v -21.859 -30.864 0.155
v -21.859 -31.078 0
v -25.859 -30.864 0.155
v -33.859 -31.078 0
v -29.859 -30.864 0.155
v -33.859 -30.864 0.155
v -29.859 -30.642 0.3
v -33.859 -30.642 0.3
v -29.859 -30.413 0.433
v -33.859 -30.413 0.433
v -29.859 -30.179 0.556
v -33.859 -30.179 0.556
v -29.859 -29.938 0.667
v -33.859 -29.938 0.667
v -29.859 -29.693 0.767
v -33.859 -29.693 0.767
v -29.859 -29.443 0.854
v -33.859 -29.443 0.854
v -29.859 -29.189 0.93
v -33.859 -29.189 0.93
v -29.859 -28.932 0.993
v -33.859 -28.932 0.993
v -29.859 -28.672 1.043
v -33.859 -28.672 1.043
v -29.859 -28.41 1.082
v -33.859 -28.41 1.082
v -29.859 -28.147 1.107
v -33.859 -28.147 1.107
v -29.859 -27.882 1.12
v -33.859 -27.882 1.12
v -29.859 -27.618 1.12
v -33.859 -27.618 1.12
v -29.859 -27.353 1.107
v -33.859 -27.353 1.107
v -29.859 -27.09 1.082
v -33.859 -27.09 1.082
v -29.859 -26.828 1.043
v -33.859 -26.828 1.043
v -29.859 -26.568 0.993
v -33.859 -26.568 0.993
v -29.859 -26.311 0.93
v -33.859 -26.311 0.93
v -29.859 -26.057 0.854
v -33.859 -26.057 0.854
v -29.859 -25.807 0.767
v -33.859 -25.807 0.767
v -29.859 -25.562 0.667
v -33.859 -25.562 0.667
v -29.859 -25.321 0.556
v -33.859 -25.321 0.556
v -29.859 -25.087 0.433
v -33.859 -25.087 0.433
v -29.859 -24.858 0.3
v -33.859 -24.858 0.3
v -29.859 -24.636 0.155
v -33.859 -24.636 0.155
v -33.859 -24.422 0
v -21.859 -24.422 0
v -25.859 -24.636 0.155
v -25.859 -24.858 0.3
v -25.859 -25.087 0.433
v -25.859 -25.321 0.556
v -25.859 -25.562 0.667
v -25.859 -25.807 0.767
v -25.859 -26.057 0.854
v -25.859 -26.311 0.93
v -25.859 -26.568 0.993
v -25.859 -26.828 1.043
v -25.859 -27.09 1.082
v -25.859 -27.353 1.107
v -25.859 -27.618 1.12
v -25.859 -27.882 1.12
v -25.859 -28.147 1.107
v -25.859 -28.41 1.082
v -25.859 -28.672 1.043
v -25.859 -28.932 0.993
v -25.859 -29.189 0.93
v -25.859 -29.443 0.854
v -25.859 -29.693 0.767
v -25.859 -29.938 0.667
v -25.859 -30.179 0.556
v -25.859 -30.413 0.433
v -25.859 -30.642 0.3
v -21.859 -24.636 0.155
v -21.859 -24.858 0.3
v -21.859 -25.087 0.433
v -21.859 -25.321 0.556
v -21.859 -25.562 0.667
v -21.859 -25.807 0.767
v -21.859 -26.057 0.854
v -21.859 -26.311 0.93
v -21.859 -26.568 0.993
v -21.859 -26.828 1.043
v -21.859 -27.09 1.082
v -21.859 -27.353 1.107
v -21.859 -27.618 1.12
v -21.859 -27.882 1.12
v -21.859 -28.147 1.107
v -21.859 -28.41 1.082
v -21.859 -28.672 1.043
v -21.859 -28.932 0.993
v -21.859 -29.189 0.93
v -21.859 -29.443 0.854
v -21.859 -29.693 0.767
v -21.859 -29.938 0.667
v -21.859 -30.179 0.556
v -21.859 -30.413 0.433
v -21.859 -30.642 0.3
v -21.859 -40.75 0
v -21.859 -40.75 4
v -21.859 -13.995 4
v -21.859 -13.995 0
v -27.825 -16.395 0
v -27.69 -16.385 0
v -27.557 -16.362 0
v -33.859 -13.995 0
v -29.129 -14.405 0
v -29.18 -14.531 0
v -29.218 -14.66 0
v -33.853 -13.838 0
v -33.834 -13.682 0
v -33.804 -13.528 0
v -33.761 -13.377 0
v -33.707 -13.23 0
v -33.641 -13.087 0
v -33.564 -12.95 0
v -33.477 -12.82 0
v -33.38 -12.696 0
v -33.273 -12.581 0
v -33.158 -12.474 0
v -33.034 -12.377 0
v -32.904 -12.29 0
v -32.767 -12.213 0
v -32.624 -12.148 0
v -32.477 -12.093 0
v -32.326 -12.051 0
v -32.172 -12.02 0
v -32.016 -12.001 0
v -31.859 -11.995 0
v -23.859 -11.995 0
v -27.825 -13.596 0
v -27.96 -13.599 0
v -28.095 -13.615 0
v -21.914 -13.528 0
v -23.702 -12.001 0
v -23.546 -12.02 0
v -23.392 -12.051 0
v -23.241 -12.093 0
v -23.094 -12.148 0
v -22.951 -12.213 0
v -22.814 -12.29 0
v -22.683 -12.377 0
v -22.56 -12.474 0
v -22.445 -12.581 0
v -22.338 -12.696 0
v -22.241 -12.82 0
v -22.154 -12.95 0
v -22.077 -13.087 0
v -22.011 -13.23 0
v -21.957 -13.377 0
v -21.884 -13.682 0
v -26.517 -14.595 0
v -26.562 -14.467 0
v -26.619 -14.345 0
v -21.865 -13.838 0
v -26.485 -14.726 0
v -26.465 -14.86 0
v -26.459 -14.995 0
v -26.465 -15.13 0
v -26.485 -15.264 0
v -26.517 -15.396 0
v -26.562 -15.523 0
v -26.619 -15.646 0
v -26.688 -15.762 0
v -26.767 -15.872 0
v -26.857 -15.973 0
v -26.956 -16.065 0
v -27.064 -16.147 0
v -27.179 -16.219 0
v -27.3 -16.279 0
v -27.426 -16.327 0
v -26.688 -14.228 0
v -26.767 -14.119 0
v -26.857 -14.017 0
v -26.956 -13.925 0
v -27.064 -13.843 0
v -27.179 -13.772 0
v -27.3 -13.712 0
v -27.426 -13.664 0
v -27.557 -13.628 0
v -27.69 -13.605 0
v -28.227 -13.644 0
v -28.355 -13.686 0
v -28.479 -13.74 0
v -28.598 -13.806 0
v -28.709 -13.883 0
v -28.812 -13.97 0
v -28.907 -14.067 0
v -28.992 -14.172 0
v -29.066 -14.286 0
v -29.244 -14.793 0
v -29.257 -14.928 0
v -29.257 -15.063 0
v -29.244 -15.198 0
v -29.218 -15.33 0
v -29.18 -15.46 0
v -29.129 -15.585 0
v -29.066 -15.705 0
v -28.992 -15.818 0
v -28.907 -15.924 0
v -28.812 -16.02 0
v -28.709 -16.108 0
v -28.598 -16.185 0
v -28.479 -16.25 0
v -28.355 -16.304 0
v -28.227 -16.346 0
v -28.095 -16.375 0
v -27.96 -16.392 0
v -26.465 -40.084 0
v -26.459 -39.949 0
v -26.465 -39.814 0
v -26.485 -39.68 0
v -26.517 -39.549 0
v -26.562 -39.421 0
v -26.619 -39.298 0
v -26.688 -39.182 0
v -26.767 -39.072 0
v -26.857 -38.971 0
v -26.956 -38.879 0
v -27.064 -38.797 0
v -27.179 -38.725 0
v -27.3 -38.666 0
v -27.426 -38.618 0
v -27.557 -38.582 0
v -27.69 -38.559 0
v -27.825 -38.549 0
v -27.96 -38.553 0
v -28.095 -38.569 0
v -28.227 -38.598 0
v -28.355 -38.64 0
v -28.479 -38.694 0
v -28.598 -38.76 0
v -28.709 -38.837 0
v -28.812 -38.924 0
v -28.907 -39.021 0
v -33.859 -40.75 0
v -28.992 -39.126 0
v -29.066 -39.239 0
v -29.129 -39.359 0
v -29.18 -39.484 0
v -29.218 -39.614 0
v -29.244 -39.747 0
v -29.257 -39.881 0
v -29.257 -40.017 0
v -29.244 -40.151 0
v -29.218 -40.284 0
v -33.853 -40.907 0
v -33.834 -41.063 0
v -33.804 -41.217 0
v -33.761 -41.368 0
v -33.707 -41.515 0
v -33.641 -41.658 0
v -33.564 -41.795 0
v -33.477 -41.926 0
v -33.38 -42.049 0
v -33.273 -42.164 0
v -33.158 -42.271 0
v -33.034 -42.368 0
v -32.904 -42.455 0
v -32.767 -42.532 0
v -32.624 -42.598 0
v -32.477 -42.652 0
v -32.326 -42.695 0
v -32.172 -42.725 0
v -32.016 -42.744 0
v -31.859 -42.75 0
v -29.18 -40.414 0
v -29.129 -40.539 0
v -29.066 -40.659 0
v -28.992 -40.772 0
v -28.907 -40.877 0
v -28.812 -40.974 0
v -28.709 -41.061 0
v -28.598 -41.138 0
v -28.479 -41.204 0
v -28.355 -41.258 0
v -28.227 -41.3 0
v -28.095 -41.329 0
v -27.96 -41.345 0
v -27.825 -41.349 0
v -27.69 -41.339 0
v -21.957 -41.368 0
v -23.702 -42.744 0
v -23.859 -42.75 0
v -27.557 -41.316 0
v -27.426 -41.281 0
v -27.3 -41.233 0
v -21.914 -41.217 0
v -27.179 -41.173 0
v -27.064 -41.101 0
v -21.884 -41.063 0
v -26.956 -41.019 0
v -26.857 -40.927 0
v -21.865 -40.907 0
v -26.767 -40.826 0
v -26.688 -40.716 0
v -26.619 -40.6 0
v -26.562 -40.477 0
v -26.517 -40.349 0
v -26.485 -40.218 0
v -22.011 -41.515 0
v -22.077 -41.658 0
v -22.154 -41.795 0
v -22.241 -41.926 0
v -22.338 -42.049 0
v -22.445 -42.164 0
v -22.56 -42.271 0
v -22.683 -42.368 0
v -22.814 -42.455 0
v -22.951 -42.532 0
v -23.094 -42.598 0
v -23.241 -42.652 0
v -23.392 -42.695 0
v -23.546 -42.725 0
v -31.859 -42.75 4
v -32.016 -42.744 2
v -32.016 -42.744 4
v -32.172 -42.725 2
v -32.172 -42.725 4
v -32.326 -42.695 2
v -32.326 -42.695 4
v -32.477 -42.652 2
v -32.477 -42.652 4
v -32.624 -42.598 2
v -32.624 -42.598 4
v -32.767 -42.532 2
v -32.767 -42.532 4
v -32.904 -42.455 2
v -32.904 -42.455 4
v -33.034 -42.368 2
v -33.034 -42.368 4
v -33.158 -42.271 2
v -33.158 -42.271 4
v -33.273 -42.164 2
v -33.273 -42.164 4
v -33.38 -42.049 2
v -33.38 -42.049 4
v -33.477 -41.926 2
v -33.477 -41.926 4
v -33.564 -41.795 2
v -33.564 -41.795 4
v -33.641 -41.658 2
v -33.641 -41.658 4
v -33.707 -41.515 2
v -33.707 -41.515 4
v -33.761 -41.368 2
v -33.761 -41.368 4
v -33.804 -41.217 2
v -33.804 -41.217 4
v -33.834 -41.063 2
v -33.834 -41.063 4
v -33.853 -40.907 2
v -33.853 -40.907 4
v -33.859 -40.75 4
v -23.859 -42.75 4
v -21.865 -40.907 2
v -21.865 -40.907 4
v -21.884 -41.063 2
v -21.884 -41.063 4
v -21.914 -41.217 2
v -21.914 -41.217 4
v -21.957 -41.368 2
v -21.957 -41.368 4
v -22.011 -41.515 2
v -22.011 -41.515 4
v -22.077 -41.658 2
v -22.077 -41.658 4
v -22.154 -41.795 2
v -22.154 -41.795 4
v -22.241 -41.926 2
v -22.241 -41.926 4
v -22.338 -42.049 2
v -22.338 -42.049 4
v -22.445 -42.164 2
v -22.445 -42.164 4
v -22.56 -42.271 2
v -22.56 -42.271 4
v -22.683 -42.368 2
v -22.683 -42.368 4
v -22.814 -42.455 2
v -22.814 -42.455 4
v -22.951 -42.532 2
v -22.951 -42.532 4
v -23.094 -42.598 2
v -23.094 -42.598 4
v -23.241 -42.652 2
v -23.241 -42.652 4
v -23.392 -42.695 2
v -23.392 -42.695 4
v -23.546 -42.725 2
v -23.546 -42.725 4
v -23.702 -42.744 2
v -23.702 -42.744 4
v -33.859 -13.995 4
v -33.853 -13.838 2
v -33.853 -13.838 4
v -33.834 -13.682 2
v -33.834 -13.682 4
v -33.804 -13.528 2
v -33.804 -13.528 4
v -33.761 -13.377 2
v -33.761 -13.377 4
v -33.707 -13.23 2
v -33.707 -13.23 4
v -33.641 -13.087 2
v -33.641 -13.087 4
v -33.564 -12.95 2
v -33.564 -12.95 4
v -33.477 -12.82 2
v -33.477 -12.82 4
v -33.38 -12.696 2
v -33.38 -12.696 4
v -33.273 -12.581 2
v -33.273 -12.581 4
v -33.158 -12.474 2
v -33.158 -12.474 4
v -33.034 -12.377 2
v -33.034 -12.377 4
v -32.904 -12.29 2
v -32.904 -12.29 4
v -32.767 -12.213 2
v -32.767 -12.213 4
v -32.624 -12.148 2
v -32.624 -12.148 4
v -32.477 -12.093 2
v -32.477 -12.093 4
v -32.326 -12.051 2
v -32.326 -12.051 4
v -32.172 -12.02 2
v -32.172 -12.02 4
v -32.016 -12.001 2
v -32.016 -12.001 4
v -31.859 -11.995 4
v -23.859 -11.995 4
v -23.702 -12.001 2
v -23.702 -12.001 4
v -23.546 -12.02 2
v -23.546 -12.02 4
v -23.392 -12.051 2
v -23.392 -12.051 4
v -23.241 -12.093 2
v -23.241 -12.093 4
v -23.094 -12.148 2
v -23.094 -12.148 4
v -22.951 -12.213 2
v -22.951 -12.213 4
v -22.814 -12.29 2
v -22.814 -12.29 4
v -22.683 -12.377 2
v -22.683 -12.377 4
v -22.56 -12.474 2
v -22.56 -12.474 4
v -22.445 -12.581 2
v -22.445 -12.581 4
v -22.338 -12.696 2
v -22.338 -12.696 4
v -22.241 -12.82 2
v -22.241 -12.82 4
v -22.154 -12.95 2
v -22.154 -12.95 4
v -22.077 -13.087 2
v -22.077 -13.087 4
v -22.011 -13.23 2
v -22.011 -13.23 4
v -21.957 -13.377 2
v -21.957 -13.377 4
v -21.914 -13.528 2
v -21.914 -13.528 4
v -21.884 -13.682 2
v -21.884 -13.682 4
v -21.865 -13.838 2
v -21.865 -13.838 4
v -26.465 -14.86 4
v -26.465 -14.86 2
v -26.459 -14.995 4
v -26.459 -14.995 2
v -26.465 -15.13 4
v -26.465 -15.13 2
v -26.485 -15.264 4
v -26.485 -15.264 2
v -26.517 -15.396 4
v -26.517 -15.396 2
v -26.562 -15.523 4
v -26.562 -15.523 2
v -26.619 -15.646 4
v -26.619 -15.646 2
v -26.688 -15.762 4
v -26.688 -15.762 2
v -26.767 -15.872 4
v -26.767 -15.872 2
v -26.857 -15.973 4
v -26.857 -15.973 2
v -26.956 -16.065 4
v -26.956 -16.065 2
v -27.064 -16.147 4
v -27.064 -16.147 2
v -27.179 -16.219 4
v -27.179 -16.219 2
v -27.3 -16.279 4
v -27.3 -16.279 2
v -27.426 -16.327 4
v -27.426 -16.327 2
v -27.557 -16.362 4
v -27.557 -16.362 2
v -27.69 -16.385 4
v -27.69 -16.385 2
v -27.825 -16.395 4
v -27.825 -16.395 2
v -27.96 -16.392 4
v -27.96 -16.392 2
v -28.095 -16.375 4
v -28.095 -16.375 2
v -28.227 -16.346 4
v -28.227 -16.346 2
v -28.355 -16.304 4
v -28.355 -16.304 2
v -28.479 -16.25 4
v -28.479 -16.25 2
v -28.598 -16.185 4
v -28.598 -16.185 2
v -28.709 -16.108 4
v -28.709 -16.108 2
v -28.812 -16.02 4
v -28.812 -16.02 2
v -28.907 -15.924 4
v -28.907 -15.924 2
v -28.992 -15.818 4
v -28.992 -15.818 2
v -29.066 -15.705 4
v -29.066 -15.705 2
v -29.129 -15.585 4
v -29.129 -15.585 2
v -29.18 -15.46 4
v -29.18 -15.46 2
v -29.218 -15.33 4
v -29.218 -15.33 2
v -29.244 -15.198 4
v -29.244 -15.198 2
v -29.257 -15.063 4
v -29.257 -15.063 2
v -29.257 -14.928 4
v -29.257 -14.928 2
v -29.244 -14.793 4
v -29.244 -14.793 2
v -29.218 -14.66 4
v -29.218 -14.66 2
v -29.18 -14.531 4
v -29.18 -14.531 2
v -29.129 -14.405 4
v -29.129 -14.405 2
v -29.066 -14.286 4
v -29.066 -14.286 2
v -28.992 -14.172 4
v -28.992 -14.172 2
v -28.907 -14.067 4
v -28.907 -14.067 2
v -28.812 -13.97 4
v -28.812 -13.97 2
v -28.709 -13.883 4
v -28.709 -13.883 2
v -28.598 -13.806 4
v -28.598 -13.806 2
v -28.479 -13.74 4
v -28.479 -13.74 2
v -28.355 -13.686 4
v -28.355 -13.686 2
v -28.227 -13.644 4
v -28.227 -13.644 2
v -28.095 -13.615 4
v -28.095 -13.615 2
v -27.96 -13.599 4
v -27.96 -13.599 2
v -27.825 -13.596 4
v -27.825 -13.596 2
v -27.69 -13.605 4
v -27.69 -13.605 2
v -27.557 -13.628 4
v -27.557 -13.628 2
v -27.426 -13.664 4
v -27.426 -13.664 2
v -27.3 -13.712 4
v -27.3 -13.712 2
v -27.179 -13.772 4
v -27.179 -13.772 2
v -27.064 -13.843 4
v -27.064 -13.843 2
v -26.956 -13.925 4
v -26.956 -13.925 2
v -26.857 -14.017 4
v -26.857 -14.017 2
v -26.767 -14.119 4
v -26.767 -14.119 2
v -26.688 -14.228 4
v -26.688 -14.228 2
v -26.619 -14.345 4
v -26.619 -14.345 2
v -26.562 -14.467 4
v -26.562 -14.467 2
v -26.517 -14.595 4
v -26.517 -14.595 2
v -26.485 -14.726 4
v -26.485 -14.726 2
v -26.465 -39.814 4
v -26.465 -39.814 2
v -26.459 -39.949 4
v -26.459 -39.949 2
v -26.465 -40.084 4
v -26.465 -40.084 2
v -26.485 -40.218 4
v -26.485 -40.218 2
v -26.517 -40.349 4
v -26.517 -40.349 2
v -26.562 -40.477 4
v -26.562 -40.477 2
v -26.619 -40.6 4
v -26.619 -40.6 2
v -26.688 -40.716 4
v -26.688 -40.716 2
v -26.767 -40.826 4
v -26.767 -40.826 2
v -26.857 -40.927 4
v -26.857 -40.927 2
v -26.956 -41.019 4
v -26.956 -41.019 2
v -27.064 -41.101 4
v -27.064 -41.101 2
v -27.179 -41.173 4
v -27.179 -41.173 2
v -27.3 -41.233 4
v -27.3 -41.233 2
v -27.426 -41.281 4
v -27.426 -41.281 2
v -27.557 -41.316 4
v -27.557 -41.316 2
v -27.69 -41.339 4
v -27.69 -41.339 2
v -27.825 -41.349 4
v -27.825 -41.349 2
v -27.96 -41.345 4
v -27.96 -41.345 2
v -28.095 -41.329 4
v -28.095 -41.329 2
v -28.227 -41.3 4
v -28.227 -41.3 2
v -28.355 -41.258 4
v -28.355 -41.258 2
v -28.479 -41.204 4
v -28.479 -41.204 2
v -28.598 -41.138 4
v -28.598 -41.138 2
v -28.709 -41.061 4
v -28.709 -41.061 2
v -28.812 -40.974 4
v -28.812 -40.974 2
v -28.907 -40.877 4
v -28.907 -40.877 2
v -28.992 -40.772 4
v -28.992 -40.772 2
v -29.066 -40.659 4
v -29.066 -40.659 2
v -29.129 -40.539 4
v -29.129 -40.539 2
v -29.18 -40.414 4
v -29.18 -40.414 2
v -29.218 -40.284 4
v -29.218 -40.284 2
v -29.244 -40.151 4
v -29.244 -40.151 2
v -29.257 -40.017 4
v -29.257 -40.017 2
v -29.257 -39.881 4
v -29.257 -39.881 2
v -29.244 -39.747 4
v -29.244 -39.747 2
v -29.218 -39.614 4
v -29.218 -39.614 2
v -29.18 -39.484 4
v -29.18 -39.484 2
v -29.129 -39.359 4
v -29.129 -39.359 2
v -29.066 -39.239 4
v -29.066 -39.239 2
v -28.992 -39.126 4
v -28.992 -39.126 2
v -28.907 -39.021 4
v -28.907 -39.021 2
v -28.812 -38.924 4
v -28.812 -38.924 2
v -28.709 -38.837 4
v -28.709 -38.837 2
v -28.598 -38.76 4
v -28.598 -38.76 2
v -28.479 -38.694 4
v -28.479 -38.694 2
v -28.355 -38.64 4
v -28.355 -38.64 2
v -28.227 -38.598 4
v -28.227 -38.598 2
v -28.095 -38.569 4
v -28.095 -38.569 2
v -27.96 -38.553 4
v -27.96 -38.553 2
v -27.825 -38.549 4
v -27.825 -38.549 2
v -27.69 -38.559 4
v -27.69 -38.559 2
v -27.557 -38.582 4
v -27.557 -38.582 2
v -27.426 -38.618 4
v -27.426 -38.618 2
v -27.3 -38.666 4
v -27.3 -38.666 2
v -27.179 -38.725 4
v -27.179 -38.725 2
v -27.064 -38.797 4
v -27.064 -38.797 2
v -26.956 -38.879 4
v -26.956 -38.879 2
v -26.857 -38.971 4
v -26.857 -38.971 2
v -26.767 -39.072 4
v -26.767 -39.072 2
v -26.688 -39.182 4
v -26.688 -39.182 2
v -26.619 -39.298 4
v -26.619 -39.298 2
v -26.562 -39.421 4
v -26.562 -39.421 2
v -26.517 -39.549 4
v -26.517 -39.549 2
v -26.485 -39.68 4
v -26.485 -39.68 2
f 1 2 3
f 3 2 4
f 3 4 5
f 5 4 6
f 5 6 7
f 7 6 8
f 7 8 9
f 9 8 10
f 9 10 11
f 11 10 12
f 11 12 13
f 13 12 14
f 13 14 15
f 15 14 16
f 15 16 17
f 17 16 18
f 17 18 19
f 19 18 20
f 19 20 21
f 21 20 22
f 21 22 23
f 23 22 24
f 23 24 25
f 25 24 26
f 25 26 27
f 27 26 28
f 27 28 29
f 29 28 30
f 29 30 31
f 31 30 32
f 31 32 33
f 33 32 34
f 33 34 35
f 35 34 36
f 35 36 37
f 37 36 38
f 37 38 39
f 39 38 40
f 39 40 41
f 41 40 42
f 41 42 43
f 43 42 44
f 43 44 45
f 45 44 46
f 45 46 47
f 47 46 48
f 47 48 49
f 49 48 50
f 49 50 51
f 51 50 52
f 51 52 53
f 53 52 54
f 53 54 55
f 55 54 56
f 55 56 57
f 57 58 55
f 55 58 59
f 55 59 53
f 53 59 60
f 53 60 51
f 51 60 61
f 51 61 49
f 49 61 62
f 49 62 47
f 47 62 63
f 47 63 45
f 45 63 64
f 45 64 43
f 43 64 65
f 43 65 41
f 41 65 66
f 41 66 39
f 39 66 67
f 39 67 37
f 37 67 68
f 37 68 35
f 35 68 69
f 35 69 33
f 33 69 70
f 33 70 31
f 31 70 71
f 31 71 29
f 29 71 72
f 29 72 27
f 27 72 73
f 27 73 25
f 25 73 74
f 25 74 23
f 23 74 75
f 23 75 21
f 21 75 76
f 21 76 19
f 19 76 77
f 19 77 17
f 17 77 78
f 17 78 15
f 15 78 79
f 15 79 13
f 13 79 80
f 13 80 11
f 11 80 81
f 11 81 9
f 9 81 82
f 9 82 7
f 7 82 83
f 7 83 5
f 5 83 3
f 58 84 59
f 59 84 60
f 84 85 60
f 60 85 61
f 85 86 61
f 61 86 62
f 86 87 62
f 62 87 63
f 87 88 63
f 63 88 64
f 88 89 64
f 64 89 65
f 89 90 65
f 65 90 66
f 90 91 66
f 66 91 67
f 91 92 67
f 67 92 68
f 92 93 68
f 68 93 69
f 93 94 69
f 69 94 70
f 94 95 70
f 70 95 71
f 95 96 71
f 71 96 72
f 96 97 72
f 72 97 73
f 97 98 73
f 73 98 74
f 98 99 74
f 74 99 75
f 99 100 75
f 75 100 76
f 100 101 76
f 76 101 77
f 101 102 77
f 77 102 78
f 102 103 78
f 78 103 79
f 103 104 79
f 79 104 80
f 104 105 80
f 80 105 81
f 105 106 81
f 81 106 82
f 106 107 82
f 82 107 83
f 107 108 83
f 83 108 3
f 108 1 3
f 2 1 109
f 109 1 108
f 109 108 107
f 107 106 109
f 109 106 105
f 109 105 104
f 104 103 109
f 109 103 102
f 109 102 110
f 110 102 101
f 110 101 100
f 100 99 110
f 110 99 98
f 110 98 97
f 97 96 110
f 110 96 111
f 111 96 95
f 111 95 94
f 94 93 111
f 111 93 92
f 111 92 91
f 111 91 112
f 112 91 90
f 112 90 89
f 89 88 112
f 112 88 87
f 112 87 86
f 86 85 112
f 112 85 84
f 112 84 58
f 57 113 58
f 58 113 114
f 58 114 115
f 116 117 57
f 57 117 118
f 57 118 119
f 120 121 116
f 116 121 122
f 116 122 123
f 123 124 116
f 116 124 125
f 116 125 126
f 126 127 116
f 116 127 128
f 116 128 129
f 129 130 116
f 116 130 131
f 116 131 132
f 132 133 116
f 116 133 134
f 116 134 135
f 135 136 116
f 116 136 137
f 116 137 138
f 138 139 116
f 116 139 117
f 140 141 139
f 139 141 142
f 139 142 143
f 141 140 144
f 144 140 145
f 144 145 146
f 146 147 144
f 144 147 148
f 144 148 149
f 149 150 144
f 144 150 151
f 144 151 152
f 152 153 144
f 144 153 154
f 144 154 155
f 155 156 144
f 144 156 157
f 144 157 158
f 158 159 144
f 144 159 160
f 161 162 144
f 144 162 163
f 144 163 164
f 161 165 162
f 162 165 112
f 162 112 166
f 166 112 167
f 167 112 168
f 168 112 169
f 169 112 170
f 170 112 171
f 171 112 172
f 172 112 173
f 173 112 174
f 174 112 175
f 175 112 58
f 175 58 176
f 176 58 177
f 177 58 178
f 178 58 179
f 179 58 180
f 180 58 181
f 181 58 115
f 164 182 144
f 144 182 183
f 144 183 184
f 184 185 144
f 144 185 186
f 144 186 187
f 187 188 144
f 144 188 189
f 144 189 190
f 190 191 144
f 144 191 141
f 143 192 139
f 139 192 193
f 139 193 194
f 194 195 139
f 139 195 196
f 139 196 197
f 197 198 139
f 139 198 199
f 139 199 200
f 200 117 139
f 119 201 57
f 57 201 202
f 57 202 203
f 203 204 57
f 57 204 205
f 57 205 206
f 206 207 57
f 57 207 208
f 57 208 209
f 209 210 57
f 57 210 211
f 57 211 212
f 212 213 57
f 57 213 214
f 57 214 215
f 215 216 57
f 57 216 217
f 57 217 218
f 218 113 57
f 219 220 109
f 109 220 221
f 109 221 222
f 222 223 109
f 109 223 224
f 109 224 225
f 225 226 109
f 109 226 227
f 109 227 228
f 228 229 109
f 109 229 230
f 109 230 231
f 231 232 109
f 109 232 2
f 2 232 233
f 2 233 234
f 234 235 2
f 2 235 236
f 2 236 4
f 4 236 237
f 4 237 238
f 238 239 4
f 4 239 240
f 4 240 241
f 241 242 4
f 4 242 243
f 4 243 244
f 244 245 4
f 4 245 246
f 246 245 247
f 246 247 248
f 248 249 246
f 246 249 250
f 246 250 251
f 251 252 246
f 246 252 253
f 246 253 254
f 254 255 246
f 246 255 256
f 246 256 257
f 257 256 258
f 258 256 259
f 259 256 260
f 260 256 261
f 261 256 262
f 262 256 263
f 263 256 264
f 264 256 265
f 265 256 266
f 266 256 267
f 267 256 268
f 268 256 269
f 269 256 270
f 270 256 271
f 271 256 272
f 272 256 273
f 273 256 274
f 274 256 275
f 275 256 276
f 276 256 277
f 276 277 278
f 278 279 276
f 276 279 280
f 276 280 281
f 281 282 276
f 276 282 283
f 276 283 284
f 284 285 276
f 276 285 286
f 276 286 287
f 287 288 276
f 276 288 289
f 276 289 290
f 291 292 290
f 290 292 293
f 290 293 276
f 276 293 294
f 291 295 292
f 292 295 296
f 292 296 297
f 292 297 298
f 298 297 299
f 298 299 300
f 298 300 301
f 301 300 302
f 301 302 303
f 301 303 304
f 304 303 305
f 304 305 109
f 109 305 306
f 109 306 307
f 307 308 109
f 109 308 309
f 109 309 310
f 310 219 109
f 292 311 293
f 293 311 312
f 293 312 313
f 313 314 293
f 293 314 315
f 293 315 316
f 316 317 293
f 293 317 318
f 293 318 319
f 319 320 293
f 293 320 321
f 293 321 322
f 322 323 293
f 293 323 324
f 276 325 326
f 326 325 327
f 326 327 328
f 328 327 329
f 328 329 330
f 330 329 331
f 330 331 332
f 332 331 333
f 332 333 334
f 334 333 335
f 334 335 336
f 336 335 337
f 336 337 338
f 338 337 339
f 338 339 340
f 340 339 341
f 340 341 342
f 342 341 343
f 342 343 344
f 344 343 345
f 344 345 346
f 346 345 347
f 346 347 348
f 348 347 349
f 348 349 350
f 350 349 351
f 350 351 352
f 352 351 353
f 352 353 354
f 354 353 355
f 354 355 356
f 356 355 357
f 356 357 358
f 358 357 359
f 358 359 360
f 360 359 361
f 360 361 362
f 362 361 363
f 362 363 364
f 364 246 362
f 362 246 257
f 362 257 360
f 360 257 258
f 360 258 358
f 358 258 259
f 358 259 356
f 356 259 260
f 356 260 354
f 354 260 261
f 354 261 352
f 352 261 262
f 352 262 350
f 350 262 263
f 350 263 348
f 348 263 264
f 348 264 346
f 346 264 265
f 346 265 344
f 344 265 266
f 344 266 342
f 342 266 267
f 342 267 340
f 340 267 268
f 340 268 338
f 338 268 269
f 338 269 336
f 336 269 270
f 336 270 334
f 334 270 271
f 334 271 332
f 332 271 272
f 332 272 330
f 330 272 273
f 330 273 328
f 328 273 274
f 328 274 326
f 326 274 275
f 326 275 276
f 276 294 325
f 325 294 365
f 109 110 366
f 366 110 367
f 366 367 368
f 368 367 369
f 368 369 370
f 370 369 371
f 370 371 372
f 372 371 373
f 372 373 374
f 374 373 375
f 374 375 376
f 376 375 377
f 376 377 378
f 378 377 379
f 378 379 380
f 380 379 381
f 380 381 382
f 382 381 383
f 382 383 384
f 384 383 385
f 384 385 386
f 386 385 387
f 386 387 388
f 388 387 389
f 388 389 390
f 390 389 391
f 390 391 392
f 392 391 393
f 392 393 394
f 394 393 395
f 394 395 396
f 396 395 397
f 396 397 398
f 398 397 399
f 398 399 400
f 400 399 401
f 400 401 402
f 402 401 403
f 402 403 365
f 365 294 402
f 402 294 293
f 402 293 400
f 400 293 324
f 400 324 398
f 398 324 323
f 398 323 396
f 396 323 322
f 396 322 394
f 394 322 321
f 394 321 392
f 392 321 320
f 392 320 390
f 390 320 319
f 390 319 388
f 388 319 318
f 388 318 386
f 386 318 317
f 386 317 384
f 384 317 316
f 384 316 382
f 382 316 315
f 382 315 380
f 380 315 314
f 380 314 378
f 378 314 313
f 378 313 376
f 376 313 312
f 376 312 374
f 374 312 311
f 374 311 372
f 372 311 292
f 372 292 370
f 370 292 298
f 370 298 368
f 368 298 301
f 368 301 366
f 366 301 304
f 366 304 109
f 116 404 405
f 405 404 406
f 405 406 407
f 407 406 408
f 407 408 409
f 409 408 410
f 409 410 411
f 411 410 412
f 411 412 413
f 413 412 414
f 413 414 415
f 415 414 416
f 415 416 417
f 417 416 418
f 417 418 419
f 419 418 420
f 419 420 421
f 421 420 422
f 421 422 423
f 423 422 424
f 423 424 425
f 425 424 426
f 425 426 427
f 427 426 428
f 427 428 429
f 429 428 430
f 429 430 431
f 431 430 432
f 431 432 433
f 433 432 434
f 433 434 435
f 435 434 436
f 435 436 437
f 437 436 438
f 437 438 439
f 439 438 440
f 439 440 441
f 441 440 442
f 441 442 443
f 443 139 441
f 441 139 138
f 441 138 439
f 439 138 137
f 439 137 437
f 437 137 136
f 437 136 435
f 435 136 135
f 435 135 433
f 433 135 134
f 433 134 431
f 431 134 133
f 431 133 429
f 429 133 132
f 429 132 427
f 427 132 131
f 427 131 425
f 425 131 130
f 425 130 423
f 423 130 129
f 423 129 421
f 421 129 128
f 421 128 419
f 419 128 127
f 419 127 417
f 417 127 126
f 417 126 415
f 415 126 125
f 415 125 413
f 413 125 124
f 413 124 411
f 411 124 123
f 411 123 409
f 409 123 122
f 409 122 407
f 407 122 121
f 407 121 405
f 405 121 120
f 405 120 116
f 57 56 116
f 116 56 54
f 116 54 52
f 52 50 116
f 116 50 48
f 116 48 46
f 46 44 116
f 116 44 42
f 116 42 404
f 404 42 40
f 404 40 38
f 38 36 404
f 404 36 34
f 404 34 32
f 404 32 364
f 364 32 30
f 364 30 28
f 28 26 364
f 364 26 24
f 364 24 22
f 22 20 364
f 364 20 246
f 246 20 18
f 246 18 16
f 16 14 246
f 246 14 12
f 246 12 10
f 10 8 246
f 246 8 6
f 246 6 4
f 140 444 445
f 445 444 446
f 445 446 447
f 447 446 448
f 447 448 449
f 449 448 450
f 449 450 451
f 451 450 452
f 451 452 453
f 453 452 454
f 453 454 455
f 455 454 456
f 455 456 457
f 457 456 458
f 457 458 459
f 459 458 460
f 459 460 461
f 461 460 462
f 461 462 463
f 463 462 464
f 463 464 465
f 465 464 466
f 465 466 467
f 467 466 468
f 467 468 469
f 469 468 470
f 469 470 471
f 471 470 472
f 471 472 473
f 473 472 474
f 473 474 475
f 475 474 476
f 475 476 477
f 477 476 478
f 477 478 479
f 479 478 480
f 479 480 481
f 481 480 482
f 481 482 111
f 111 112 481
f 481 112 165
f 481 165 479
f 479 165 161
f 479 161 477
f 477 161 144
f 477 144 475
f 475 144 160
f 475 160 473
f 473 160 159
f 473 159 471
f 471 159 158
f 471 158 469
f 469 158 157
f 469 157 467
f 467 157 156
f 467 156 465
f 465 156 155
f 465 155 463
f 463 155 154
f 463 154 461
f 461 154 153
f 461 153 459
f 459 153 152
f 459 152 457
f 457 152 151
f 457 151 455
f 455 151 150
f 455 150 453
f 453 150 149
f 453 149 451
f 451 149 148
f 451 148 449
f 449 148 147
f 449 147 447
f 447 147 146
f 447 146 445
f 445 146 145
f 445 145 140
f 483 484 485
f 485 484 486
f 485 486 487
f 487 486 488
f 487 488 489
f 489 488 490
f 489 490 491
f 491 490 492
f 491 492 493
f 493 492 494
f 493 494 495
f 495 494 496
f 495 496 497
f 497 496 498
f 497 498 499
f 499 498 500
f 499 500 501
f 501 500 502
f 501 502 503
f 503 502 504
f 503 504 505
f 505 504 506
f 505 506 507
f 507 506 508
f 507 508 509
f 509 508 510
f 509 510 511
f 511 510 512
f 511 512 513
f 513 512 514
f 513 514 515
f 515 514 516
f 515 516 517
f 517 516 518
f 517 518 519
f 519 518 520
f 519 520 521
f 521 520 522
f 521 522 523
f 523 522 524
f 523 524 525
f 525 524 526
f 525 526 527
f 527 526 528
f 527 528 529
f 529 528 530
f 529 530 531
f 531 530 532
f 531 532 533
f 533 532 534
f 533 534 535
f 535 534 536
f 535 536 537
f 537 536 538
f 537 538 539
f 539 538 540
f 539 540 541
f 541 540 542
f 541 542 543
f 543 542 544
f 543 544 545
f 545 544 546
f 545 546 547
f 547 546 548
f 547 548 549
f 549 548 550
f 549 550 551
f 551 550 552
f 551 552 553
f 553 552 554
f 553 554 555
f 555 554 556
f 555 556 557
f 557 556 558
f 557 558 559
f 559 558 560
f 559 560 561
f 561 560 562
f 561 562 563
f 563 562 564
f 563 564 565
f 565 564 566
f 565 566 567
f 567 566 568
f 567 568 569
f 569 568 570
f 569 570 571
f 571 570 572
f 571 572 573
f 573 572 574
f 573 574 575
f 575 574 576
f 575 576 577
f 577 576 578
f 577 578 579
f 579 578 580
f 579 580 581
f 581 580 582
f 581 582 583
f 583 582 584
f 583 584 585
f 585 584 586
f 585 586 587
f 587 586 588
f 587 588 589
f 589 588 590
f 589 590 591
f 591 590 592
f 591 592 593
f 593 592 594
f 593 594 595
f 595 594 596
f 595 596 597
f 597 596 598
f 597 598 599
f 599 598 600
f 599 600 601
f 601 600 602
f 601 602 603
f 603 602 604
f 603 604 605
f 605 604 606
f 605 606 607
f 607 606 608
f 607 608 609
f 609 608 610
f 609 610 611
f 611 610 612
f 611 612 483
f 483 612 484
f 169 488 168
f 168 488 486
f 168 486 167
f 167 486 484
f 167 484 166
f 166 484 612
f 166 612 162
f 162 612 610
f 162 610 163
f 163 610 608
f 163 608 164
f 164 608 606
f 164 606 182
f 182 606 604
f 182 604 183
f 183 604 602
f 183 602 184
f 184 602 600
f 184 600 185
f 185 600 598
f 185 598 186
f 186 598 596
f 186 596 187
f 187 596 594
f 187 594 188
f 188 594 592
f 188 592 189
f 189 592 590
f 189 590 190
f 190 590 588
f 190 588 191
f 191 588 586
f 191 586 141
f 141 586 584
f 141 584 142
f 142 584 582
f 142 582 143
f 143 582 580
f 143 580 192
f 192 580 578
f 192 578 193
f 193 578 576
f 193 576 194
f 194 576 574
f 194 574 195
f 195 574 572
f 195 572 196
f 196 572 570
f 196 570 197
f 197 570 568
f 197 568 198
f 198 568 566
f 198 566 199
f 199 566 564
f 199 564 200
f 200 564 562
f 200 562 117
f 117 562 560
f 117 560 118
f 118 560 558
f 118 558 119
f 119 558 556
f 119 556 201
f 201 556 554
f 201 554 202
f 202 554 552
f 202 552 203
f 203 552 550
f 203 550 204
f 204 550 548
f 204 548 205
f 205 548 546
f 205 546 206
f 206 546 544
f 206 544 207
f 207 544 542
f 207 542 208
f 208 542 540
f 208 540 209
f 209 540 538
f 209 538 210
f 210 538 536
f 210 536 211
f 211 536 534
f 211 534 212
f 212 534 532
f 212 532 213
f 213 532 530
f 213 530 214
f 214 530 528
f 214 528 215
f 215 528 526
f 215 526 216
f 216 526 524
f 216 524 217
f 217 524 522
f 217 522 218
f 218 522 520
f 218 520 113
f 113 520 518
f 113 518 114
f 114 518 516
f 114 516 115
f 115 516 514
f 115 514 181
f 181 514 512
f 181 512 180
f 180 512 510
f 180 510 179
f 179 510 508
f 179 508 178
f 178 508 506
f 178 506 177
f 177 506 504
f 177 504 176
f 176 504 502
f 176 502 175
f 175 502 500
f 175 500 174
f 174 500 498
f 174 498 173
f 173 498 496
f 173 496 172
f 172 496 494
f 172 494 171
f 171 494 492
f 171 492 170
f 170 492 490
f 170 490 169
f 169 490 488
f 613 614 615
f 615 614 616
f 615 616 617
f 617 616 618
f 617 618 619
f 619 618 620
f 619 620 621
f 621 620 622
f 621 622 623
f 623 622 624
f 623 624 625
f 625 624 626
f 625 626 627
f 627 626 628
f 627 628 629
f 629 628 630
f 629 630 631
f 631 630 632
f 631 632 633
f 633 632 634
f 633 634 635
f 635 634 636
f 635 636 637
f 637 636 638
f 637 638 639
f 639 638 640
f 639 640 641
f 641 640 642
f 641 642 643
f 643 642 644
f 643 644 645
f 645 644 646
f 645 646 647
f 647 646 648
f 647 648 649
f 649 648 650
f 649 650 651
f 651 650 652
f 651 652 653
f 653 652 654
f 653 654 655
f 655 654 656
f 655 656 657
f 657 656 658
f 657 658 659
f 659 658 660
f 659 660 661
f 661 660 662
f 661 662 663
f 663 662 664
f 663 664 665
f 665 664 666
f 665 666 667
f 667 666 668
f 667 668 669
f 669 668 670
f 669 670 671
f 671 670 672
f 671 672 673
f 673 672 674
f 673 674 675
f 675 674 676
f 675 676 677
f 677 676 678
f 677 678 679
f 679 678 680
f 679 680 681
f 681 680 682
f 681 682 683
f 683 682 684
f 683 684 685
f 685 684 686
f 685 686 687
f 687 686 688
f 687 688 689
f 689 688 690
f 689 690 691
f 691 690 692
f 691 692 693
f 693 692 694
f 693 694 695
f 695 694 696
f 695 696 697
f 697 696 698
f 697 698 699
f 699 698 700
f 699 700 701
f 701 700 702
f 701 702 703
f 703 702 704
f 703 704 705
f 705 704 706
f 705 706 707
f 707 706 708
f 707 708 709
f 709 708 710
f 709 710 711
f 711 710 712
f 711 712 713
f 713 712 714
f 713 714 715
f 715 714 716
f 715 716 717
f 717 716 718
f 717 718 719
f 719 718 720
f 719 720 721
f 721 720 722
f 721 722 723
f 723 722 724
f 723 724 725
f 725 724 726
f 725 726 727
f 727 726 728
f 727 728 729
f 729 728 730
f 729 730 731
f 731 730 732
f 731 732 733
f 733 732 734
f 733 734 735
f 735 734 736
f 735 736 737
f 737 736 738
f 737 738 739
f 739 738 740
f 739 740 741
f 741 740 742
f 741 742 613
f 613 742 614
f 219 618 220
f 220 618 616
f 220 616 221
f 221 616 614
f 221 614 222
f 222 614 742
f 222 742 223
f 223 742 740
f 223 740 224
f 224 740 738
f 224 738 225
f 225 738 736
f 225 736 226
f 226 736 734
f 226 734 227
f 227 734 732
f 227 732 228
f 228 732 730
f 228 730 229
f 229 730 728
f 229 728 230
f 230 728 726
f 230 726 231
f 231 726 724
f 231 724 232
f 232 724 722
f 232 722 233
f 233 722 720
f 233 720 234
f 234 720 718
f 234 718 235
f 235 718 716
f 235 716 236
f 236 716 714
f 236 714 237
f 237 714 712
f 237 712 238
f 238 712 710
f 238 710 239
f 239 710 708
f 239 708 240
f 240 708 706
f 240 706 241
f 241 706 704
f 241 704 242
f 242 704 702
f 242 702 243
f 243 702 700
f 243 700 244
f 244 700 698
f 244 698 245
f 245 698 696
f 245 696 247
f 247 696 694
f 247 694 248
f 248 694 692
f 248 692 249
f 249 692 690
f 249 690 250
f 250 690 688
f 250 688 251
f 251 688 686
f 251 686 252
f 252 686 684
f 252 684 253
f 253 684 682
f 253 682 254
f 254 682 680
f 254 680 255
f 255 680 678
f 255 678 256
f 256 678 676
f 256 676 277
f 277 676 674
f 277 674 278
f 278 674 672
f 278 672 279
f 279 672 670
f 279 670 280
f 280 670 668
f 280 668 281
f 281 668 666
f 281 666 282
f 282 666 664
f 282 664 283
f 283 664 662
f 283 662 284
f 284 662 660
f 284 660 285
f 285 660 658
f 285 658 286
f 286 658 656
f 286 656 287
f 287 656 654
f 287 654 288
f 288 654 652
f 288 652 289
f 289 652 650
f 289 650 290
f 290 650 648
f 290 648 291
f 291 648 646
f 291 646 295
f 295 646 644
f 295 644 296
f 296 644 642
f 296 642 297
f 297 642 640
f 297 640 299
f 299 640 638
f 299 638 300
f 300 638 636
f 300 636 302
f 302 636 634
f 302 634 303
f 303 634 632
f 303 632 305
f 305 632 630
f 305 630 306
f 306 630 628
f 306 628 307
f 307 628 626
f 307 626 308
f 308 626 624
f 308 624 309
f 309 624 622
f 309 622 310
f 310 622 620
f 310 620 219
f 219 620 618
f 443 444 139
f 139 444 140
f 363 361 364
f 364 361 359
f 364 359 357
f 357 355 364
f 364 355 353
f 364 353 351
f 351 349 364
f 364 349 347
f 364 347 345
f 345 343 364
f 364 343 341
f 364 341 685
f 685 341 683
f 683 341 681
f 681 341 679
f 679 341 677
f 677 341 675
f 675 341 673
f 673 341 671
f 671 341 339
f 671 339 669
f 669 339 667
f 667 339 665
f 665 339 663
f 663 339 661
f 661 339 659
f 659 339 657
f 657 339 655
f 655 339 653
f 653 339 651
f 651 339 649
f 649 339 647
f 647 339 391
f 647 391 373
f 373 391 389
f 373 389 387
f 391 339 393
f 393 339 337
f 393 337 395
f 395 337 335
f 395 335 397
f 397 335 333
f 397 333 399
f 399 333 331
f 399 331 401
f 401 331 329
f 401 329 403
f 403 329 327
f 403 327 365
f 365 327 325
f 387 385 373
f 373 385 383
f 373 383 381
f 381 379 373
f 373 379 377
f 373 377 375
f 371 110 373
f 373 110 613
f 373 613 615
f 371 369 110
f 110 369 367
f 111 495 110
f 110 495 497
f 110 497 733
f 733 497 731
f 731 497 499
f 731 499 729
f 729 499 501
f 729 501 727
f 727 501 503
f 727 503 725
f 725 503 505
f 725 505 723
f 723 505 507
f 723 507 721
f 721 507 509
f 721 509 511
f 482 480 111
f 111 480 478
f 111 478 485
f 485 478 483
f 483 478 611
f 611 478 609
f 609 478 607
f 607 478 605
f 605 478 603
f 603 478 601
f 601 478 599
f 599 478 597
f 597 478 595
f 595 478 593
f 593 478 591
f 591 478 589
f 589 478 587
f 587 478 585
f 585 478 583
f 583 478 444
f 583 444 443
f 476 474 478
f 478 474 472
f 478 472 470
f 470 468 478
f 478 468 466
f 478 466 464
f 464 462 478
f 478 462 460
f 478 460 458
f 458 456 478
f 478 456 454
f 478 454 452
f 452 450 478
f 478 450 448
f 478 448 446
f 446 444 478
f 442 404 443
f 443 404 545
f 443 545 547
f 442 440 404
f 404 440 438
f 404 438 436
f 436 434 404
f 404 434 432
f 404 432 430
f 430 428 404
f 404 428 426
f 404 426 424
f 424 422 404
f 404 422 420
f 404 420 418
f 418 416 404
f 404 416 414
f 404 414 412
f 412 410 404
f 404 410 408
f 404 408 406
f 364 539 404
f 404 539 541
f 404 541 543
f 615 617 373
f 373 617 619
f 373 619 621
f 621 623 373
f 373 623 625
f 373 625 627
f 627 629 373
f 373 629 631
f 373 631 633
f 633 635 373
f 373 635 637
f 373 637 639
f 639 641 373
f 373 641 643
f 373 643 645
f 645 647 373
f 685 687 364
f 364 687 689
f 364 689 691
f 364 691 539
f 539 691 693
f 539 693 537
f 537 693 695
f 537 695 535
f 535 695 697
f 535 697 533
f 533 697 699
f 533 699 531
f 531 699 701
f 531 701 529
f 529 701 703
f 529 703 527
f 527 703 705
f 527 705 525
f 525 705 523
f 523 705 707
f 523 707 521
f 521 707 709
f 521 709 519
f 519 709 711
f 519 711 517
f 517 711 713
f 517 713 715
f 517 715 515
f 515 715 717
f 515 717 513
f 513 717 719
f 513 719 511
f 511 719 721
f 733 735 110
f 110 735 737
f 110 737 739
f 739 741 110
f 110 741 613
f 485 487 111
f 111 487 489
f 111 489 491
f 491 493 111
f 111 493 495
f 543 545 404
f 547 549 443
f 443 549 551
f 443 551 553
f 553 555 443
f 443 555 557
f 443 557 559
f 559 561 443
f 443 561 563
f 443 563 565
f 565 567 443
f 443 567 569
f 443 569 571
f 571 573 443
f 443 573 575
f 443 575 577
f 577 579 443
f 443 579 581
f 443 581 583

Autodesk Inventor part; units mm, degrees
ref_plane "YZ Plane" through (0, 0, 0) normal (1, 0, 0) x (0, 1, 0)
ref_plane "XZ Plane" through (0, 0, 0) normal (0, 1, 0) x (-1, 0, 0)
ref_plane "XY Plane" through (0, 0, 0) normal (0, 0, 1) x (1, 0, 0)
ref_plane "Arbeitsebene1" through (0, 0, 0) normal (0, 0, 1) x (1, 0, 0)
sketch "Skizze1" plane through (0, 0, 0) normal (0, 0, 1) x (1, 0, 0)
  circle A0 centre (-27.8589, -14.9953) radius 1.4 projected
  circle A1 centre (-27.8589, -39.949) radius 1.4 projected
  line L0 (-21.8589, -42.949) -> (-33.8589, -42.949)
  line L1 (-33.8589, -42.949) -> (-33.8589, -11.9953)
  line L2 (-33.8589, -11.9953) -> (-21.8589, -11.9953)
  line L3 (-21.8589, -11.9953) -> (-21.8589, -42.949)
  line L4 (-21.8589, -42.949) -> (-33.8589, -11.9953) construction
  line L5 (-33.8589, -42.949) -> (-21.8589, -11.9953) construction
  line L6 (-59.9, -42.75) -> (59.9, -42.75) projected
  point P0 (0, 0)
  point P1 (-27.8589, -27.4722)
  point P2 (-33.8589, -42.75)
  point P3 (-21.8589, -42.75)
  dimension "d0" = 24.9538
  dimension "d1" = 3
  dimension "d2" = 3
  dimension "d3" = 12
extrude "Extrusion1" add sketch "Skizze1" along normal blind 4 contours L6 L1 L2 L3
fillet "Rundung1" radius 2 4 edges at (-21.8589, -11.9953, 2) (-33.8589, -11.9953, 2) (-21.8589, -42.75, 2) (-33.8589, -42.75, 2)
sketch "Skizze2" plane through (-21.8589, -40.75, 0) normal (1, 0, 0) x (0, 0, -1)
  circle A0 centre (4.8526, 13) radius 4.7625 projected
  circle A1 centre (4.3786, 13) radius 5.5
  point P0 (0, 40.75)
  dimension "d7" = 11
extrude "Extrusion2" cut sketch "Skizze2" against normal through all contours A0 | A1
properties part number "20_M12_Lens_Fixation_1"
